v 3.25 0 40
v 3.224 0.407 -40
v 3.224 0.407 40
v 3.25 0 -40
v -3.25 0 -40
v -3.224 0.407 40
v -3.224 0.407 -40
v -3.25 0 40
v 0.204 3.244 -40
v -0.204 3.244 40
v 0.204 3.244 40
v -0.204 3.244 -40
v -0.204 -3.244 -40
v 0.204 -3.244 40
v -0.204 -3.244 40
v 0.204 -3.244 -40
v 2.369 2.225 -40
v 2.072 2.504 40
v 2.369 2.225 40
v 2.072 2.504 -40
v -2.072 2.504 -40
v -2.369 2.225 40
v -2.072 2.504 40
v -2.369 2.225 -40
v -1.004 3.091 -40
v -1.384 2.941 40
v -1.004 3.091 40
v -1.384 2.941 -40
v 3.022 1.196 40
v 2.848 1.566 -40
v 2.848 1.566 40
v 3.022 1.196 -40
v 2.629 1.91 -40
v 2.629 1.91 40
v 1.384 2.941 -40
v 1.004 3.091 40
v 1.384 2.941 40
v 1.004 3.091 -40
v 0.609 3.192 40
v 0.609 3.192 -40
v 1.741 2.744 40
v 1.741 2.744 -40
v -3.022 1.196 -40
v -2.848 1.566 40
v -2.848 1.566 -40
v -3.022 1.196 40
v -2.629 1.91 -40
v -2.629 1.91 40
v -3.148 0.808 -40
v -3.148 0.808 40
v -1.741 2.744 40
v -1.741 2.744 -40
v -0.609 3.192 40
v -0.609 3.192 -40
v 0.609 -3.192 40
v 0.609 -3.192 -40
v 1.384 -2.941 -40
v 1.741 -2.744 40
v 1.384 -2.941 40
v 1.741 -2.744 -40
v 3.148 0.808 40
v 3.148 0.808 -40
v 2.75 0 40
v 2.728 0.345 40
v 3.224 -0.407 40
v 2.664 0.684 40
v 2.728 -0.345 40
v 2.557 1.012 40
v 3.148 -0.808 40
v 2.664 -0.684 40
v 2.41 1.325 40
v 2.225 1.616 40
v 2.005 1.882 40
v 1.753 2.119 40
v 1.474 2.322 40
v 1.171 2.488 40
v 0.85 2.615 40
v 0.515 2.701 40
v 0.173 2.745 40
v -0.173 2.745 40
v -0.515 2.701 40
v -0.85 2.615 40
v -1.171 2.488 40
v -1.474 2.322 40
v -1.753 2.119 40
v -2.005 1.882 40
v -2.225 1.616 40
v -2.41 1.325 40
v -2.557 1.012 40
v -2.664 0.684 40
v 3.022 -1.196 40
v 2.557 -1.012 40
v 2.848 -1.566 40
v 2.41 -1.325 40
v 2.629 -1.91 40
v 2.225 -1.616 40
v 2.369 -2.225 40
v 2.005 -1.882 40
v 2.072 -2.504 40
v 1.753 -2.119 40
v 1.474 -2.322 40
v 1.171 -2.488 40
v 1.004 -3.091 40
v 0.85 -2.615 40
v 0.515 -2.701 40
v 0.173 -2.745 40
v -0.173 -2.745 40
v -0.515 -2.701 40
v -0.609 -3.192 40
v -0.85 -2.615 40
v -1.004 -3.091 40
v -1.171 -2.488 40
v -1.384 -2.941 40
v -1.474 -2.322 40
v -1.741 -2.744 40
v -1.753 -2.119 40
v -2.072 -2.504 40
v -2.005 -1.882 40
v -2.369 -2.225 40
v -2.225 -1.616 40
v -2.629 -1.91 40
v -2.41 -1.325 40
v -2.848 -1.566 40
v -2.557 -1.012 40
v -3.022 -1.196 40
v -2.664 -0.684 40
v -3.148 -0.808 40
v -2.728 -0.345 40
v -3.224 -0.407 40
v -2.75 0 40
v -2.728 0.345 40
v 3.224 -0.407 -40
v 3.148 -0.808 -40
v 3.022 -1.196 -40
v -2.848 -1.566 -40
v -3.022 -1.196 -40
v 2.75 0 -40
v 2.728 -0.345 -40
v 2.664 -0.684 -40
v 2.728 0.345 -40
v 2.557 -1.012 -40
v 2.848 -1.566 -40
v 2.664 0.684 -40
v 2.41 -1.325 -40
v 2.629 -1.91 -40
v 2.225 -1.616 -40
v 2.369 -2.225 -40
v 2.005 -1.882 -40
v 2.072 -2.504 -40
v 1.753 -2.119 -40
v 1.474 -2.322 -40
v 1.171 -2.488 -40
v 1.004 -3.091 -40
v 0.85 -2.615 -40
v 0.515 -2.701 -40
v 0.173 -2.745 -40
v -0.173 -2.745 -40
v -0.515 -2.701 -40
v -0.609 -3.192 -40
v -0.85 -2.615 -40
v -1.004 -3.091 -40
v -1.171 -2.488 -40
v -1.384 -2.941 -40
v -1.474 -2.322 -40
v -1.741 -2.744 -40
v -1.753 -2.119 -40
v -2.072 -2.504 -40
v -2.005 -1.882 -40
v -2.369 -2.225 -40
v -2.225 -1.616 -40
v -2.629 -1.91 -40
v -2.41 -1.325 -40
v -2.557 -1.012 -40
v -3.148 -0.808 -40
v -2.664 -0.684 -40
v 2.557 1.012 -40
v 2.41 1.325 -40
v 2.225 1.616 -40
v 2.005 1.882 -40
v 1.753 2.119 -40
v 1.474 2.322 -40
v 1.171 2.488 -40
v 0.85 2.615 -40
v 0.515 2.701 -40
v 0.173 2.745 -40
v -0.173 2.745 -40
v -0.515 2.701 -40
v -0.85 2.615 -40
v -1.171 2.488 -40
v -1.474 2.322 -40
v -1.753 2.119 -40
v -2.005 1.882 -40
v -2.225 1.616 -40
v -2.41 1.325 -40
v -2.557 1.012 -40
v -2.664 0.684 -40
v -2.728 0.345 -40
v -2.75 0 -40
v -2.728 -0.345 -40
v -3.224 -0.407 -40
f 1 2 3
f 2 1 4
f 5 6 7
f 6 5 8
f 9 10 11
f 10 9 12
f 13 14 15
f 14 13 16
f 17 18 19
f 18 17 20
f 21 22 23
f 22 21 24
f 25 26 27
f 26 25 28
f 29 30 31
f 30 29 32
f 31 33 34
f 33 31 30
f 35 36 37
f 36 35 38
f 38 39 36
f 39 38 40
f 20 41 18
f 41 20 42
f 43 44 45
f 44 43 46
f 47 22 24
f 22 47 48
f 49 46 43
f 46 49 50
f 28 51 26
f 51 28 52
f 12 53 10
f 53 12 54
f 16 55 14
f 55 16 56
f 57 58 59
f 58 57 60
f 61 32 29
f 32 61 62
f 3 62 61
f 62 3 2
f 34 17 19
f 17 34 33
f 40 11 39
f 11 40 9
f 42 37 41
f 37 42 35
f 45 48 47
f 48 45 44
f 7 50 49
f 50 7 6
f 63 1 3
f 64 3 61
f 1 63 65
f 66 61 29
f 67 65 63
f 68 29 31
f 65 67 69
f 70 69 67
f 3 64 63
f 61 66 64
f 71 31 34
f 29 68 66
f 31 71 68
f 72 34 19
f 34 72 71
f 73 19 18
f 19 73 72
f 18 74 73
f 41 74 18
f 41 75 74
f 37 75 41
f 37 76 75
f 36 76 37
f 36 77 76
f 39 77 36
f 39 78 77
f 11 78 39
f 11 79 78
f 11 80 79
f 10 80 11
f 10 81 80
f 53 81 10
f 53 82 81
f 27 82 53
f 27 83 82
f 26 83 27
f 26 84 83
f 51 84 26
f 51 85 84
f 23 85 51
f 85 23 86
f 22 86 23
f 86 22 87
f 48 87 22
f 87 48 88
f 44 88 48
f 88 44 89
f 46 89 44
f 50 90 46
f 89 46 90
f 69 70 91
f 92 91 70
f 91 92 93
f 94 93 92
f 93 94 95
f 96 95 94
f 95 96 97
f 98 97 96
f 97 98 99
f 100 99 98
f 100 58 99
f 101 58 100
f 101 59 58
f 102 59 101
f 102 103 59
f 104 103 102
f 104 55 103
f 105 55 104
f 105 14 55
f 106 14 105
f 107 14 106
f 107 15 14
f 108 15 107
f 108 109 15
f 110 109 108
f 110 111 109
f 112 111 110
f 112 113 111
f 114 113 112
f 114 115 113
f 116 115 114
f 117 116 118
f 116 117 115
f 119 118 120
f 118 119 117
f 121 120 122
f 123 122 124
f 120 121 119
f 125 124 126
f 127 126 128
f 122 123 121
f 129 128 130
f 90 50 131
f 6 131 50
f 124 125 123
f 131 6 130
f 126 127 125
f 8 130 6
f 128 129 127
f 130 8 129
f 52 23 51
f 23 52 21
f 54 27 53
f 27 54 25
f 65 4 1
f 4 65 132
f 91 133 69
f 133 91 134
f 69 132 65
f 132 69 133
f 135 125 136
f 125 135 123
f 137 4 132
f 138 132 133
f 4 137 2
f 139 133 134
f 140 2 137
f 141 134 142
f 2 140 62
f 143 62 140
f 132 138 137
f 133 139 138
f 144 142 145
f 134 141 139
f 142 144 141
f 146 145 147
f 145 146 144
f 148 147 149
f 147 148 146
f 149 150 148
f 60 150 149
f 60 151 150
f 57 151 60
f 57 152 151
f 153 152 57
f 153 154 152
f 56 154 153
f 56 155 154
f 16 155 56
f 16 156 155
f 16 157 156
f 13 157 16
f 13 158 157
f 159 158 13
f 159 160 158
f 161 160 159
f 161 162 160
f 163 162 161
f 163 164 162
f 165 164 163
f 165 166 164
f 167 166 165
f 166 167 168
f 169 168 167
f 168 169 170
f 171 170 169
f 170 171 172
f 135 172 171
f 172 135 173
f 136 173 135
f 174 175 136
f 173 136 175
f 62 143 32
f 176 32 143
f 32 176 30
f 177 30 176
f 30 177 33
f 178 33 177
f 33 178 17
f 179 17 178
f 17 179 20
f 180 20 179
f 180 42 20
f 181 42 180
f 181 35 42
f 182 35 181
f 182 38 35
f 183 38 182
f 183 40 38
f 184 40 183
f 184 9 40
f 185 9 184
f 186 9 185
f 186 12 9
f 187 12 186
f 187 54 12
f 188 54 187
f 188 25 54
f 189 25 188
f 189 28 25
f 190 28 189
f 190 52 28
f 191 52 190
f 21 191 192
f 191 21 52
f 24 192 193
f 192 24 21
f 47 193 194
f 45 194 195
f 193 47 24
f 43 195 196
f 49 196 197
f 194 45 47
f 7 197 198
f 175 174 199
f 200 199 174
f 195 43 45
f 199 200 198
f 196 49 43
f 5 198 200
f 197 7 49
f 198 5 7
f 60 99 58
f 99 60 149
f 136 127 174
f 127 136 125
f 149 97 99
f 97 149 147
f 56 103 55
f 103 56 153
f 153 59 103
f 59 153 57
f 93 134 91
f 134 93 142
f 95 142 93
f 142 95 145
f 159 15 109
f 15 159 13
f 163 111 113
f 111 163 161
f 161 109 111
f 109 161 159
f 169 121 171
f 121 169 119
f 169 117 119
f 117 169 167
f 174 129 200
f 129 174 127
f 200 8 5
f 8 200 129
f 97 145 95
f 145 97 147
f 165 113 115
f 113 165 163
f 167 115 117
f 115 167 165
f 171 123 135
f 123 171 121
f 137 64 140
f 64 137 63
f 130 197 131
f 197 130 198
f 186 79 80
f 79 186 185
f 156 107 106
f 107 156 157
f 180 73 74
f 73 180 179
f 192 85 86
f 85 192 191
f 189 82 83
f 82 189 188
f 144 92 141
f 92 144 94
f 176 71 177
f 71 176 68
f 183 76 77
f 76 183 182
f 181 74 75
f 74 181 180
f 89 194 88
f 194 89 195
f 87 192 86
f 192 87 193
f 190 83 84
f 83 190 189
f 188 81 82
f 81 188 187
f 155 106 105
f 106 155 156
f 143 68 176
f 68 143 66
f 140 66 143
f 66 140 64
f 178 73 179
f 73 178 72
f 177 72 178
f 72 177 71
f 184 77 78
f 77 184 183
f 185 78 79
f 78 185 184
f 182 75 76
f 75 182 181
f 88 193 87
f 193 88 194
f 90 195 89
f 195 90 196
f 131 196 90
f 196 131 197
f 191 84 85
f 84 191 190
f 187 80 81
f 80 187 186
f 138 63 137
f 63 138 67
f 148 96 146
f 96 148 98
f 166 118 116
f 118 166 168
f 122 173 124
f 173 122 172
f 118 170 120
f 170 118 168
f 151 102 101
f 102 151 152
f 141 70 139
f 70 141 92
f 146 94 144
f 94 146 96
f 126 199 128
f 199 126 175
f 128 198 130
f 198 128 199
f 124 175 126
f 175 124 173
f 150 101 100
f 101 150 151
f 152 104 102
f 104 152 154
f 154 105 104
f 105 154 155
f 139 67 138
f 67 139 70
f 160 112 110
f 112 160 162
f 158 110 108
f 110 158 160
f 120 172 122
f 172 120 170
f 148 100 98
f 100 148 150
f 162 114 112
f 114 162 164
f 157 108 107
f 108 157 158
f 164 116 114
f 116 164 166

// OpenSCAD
$fn = 50;


difference() {
	union() {
		translate(v = [0, 0, -40.0000000000]) {
			cylinder(h = 80, r = 3.2500000000);
		}
	}
	union() {
		translate(v = [0, 0, -100.0000000000]) {
			cylinder(h = 200, r = 2.7500000000);
		}
	}
}
